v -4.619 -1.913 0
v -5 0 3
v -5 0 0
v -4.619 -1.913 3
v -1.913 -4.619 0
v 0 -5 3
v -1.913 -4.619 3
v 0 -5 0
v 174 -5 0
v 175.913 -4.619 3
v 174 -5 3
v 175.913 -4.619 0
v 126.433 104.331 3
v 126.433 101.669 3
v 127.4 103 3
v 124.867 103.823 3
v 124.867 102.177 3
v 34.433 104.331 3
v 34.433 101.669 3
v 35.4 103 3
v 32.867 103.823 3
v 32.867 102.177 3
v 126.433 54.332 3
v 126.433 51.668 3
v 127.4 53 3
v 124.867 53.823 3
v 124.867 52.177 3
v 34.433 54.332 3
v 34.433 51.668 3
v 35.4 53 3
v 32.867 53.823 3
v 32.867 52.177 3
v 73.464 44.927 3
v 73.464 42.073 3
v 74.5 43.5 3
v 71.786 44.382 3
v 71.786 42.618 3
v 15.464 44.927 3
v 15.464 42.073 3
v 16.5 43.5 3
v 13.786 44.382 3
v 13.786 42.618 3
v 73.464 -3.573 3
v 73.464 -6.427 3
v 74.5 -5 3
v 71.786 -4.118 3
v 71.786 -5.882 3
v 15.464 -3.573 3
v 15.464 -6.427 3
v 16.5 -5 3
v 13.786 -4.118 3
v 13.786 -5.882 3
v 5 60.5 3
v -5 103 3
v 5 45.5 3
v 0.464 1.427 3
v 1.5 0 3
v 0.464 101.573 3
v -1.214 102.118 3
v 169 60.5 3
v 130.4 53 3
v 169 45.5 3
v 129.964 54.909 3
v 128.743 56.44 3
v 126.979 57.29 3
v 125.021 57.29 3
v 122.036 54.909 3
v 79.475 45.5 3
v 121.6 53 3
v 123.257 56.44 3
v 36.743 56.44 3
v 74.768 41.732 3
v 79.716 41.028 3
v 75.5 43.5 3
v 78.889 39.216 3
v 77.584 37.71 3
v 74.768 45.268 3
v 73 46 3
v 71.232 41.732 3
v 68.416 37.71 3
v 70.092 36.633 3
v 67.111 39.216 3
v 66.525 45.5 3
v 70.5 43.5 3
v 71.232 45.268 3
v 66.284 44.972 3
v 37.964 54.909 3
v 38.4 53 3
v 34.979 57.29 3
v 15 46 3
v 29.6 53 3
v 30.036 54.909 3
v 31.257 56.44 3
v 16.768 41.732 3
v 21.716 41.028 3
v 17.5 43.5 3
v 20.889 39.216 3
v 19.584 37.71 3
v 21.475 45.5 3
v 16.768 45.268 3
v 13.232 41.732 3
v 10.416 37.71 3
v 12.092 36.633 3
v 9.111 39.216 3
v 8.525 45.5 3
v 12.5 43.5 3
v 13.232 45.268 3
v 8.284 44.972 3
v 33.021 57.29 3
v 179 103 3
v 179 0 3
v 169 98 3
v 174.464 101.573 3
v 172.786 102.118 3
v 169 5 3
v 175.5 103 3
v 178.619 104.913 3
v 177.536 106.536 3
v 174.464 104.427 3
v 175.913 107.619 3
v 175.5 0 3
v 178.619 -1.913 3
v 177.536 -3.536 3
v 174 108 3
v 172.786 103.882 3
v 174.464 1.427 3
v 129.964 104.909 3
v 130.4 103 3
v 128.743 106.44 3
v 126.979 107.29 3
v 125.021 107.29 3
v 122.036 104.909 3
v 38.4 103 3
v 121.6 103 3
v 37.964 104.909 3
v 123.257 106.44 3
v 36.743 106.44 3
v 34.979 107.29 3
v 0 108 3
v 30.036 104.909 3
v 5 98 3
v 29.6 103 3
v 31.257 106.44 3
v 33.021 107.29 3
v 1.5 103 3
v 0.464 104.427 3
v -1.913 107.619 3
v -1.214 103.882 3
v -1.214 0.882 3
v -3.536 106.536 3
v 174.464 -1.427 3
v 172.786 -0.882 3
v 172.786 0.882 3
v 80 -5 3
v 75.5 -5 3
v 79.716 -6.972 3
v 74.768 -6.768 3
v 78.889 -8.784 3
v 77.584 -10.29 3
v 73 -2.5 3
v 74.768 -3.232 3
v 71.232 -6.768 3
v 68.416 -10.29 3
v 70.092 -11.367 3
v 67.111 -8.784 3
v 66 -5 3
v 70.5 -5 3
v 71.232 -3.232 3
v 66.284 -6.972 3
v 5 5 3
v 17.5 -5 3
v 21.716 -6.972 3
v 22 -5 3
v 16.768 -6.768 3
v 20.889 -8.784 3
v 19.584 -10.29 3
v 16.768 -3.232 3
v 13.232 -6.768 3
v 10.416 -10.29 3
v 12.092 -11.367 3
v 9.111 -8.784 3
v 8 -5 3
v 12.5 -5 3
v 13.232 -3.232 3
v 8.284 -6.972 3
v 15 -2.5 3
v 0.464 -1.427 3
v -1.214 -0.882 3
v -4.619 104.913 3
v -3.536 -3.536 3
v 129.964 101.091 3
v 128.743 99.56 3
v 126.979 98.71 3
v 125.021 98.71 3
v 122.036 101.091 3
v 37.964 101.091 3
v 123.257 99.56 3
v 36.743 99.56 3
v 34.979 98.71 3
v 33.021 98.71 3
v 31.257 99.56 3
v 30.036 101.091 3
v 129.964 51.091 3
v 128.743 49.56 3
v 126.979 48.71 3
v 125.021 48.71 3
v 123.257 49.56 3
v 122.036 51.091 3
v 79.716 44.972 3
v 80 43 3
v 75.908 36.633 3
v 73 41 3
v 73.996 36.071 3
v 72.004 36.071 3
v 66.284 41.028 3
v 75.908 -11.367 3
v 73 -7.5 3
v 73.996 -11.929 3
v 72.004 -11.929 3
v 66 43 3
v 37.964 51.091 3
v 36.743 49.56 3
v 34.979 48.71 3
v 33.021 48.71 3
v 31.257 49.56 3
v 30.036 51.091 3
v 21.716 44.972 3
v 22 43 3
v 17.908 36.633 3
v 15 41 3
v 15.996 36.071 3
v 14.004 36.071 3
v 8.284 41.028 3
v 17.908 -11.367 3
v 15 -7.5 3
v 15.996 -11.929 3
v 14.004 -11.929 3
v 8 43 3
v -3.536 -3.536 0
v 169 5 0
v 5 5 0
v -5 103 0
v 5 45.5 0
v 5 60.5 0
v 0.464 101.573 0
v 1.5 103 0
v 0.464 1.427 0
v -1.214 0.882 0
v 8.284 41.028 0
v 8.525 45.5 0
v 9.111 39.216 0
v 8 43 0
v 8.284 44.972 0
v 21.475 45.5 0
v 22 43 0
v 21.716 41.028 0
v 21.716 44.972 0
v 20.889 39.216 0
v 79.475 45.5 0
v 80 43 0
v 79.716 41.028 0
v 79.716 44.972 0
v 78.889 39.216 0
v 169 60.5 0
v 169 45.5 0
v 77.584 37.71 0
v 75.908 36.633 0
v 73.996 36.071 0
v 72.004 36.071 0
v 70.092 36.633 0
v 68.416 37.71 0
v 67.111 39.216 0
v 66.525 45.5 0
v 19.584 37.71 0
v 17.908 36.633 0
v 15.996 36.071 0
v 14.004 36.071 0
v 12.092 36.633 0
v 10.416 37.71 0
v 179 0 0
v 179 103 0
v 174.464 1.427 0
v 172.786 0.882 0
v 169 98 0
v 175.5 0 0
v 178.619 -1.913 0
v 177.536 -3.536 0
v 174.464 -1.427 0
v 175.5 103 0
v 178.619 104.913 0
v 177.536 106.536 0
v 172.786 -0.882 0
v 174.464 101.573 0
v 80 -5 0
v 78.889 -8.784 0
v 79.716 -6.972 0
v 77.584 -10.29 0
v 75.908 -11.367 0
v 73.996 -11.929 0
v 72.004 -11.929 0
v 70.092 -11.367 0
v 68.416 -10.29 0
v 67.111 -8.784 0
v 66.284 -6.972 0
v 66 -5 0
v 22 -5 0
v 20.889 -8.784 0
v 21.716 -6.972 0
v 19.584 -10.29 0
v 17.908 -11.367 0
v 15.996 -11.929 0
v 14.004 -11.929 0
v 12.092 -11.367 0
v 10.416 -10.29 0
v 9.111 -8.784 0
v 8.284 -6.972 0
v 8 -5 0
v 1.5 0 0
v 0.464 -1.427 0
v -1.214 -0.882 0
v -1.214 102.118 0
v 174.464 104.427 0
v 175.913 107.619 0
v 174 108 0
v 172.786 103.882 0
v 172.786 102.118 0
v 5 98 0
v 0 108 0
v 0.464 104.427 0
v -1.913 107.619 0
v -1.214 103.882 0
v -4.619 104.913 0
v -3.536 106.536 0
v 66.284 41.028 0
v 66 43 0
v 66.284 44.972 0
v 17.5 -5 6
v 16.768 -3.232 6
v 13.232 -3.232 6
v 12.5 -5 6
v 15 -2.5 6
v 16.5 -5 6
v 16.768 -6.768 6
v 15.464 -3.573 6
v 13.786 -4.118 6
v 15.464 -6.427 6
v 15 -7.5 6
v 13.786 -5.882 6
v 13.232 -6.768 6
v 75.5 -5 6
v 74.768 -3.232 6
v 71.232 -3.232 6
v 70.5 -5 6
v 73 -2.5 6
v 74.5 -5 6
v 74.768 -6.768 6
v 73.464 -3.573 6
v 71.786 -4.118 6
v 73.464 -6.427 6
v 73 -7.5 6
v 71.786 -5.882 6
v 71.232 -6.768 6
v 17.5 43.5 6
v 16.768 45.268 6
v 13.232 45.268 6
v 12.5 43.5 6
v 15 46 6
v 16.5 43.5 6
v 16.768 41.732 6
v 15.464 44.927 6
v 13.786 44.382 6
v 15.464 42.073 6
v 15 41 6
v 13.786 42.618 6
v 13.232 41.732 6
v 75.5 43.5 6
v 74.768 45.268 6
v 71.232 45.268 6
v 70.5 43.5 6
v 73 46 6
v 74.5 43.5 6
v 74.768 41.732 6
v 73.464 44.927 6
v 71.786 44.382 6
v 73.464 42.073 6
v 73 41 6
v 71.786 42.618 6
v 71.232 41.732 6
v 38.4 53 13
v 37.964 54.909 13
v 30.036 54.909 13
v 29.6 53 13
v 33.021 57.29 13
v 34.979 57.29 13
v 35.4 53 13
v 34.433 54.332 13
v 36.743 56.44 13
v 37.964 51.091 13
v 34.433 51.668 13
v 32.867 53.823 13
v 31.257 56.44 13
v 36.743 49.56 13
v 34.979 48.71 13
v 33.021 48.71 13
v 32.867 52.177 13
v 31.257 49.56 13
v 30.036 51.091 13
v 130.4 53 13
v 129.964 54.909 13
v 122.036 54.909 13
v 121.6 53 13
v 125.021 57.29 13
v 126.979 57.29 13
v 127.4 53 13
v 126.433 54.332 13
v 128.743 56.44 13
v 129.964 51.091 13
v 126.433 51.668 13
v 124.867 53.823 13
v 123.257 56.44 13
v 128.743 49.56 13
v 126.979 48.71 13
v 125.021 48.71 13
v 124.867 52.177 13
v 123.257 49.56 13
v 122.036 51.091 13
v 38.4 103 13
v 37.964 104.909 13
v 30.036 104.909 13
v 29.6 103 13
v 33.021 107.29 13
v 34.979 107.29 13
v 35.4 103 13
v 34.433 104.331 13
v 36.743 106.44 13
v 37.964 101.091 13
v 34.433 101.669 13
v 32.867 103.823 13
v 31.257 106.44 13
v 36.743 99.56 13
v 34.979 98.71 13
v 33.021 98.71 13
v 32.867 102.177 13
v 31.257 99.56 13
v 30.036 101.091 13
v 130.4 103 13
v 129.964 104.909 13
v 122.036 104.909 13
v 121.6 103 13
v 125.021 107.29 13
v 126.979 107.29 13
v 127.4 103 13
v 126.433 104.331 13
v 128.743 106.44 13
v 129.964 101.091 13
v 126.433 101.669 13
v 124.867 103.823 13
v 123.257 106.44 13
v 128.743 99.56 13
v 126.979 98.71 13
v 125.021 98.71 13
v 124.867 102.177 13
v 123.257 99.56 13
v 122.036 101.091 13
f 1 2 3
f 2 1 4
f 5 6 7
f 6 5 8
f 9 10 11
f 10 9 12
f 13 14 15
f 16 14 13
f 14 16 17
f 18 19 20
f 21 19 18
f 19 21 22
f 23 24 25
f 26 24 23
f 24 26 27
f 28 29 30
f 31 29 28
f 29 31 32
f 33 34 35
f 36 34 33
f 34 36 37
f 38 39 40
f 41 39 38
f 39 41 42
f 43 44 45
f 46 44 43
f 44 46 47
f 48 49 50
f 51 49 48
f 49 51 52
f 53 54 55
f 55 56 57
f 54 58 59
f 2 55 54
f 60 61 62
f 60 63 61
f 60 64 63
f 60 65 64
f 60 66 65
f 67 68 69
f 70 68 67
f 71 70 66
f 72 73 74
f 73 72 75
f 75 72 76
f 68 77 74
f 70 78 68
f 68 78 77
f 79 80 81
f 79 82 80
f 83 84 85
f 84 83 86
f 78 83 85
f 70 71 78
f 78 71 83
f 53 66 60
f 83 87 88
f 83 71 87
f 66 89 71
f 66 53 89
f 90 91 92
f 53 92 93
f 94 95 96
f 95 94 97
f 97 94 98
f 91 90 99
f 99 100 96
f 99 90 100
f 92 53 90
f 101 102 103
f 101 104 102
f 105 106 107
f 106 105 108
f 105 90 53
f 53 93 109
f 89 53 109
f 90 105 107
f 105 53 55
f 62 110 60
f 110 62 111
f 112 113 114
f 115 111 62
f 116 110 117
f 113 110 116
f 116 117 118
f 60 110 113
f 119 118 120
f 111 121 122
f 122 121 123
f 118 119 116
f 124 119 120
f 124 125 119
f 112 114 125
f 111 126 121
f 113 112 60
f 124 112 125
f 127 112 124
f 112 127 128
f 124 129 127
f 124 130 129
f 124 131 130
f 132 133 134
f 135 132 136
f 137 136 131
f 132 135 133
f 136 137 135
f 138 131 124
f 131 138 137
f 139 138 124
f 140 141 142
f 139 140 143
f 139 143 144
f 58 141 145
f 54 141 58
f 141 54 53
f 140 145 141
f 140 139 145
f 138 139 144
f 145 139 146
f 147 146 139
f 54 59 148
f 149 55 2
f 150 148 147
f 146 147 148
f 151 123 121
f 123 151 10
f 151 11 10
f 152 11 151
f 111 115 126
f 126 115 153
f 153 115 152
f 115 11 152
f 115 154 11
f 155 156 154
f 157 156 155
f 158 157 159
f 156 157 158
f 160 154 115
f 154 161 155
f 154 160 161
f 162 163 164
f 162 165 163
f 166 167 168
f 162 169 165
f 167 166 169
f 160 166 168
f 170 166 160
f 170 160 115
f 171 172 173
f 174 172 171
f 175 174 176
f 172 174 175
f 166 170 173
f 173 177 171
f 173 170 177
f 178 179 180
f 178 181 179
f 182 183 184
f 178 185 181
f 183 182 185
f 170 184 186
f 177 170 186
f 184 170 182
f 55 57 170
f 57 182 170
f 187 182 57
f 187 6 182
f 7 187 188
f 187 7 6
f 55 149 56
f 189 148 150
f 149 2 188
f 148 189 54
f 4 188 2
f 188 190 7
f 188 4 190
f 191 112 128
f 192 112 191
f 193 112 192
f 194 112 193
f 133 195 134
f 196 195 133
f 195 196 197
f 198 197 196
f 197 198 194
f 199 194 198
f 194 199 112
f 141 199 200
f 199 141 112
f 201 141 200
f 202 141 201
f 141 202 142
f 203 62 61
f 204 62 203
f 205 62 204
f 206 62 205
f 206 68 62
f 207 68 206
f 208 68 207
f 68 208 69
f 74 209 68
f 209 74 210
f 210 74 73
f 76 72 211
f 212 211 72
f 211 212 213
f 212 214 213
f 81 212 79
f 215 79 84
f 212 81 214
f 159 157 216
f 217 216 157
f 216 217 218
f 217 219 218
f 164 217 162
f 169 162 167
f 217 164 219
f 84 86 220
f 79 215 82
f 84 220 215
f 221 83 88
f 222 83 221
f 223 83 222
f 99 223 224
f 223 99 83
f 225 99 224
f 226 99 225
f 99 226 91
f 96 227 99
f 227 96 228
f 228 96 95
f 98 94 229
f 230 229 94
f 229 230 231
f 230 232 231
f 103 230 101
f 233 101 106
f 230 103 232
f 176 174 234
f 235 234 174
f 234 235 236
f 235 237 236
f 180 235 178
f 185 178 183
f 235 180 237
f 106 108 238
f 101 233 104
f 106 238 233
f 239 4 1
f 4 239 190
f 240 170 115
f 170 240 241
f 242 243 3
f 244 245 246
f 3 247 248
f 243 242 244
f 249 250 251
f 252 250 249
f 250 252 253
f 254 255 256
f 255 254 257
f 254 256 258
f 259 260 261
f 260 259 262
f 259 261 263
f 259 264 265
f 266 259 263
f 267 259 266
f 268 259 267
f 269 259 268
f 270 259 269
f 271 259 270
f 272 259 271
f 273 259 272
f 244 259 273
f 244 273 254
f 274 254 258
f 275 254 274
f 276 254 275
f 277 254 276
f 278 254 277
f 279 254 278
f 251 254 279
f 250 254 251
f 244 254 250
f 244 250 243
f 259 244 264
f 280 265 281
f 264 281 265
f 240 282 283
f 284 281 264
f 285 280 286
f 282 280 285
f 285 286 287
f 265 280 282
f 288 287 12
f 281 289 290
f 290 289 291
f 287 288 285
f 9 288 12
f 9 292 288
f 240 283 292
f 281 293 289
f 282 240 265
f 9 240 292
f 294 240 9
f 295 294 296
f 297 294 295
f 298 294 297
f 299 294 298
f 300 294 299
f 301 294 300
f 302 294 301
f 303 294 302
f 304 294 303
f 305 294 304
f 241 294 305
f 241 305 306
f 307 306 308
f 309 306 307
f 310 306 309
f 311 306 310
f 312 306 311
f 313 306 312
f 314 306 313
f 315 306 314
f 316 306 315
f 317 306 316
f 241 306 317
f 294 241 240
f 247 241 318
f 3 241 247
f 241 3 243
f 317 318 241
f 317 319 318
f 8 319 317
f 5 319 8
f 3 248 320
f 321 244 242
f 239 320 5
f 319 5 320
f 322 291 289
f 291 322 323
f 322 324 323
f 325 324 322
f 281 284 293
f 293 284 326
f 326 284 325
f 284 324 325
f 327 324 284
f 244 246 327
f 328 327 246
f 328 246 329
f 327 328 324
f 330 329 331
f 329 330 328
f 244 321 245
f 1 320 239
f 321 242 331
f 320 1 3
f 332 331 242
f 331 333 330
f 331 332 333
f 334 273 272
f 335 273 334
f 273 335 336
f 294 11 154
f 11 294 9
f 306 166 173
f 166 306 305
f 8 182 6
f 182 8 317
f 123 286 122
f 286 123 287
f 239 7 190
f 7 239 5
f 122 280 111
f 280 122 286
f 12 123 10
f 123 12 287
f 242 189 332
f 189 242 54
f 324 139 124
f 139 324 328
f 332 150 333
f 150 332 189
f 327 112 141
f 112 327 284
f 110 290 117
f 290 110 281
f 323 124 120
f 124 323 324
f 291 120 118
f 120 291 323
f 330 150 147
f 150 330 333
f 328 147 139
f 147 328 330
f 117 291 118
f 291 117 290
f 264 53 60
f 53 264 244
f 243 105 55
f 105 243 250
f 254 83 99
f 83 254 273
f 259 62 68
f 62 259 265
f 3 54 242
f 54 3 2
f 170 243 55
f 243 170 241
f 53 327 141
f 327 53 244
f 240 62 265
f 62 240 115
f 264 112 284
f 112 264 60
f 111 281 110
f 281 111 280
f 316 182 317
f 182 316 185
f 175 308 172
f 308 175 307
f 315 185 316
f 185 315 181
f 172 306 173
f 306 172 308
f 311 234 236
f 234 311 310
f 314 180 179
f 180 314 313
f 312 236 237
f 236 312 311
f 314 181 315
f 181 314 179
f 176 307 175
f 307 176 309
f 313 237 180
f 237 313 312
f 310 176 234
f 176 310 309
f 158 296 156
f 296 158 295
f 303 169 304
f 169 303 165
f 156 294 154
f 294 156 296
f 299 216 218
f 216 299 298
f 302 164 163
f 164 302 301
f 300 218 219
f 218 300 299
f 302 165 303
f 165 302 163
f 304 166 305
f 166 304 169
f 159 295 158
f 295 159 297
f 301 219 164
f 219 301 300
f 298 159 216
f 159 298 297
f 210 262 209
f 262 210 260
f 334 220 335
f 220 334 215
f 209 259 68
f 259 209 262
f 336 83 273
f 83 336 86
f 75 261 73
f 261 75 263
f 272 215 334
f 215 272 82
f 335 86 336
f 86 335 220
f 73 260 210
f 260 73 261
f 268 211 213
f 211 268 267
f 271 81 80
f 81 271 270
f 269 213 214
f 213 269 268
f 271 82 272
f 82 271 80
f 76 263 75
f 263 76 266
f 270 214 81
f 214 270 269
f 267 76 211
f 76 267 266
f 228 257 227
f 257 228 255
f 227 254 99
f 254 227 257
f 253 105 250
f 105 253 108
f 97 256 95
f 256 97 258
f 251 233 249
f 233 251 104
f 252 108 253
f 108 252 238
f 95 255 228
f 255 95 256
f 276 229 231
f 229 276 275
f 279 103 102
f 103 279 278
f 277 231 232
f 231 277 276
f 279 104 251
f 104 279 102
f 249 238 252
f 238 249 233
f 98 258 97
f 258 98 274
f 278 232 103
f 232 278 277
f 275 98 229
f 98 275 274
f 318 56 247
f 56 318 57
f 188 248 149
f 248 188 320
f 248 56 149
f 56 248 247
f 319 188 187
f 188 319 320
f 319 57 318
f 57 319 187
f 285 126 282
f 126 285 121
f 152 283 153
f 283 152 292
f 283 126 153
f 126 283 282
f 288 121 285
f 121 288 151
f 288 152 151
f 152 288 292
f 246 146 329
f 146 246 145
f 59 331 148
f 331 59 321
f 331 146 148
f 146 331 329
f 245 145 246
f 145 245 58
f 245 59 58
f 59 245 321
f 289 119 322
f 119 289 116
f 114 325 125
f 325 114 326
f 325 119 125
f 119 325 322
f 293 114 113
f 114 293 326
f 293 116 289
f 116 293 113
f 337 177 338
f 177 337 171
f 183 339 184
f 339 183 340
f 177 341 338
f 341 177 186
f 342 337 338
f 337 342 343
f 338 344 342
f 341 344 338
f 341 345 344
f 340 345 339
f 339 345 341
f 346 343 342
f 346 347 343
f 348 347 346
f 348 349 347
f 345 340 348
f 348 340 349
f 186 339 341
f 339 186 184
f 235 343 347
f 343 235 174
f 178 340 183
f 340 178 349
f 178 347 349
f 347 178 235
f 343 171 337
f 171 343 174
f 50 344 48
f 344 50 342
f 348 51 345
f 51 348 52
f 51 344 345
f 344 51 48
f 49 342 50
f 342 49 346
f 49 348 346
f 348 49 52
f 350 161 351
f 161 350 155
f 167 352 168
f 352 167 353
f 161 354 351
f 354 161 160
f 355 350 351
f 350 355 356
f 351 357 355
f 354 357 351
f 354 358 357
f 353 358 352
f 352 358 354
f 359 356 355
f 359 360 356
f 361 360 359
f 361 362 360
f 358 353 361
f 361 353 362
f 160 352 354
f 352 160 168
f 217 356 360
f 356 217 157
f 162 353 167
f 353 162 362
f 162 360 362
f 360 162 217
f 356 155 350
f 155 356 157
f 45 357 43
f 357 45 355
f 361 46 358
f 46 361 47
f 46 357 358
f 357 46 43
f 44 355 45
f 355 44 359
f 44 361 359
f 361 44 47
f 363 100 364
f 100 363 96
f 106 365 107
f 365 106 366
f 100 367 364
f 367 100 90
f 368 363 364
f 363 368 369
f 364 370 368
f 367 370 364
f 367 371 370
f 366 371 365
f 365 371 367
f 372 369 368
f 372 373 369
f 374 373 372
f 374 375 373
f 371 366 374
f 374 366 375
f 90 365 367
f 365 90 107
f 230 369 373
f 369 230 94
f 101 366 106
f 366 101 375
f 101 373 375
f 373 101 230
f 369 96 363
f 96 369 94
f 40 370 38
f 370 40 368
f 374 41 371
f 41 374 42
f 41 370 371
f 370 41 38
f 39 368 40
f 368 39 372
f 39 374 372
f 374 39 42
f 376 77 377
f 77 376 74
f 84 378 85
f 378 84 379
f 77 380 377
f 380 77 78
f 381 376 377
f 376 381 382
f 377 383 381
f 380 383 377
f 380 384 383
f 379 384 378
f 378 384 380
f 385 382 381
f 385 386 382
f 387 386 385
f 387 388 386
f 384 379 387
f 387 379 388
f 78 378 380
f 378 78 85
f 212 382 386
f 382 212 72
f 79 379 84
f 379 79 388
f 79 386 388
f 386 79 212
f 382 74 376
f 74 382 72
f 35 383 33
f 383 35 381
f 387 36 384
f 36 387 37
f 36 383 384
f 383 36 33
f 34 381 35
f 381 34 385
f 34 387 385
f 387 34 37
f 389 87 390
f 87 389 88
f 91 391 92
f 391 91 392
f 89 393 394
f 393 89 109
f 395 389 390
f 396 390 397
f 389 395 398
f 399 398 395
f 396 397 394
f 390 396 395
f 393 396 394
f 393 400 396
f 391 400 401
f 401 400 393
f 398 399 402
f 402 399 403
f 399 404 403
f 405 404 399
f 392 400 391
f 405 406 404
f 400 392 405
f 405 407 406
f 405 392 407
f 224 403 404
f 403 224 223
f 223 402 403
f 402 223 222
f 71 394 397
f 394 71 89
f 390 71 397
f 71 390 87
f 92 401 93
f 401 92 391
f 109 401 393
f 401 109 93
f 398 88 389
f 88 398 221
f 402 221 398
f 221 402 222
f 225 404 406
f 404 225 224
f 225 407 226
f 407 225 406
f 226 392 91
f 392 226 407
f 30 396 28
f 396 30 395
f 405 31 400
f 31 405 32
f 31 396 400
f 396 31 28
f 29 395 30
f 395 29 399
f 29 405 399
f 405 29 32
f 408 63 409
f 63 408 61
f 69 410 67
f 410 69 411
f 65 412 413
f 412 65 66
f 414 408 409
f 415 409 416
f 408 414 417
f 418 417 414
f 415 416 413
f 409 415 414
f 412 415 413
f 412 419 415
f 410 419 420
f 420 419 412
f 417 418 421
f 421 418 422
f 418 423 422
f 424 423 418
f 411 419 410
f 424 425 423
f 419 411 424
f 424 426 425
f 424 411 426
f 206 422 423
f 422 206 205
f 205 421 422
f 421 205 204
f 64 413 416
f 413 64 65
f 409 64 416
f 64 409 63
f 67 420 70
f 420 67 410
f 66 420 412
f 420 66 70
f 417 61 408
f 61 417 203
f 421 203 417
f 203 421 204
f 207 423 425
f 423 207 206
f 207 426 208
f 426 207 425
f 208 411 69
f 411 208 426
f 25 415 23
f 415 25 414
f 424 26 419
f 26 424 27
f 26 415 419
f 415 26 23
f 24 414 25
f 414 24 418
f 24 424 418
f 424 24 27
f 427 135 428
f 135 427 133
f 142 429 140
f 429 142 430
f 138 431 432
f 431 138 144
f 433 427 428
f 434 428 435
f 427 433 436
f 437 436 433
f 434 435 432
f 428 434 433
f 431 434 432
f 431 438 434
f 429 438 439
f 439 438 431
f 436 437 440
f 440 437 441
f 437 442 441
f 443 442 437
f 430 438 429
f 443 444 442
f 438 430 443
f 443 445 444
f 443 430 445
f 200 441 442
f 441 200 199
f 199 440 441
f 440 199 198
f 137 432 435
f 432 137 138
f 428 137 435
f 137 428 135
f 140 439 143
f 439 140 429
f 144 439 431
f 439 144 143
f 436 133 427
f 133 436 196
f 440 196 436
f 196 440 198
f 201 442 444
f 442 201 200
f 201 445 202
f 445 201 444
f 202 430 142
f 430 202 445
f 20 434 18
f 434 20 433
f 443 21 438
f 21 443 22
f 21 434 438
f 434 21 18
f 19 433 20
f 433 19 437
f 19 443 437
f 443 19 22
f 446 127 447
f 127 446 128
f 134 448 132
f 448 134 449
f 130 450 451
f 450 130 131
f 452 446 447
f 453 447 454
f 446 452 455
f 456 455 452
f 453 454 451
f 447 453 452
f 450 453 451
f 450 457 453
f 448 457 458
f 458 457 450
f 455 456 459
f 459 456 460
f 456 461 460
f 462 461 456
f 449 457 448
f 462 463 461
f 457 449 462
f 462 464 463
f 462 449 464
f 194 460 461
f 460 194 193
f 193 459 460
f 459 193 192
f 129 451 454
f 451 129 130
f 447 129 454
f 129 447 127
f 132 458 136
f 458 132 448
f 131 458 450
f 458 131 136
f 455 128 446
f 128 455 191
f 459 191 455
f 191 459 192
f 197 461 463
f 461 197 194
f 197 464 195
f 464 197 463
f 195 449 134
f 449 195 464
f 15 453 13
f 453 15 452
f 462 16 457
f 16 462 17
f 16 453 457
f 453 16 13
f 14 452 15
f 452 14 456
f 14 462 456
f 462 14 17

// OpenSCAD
main_support_height = 3;
main_support_width = 10;

module main_structure() {
// upper horizontal side
hull() {
    cylinder(main_support_height, d=main_support_width);
    translate([174, 0, 0]) cylinder(3, d=main_support_width);
}

// lower horizontal side
translate([0, 103, 0]) hull() {
    cylinder(main_support_height, d=main_support_width);
    translate([174, 0, 0]) {
        cylinder(main_support_height, d=main_support_width);
    }
}

// central horizontal line
translate([4.5, 53, 0]) hull() {
    cylinder(main_support_height, d=main_support_width+5);
    translate([165, 0, 0]) cylinder(main_support_height, d=main_support_width+5);
}

// left vertical edge
hull() {
    cylinder(main_support_height, d=main_support_width);
    translate([0, 103, 0]) cylinder(main_support_height, d=main_support_width);
}

// right vertical edge
hull() {
    translate([174, 0, 0]) cylinder(main_support_height, d=main_support_width);
    translate([174, 103, 0]) cylinder(main_support_height, d=main_support_width);
}

// pads for rpi holder
translate([15, -5, 0]) {
    cylinder(main_support_height, d=main_support_width+4);
}
// 58mm between holes horizontally
translate([73, -5, 0]) {
    cylinder(main_support_height, d=main_support_width+4);
}
translate([73, 43, 0]) {
    cylinder(main_support_height, d=main_support_width+4);
}
translate([15, 43, 0]) {
    cylinder(main_support_height, d=main_support_width+4);
}

}

// rpi holder
module rpi_holder_standoff() {
    rpi_standoff_height = 3;
    difference() {
        cylinder(rpi_standoff_height, d=5);
        translate([0,0,-main_support_height]) 
            cylinder(rpi_standoff_height+main_support_height, d=3);
    }
}

module rpi_holder() {
    translate([0, 0, main_support_height]) rpi_holder_standoff();
    translate([58, 0, main_support_height]) rpi_holder_standoff();
    translate([0, 48.5, main_support_height]) rpi_holder_standoff();
    translate([58, 48.5, main_support_height]) rpi_holder_standoff();   
}

// wild thumper controller holder
module wild_thumper_controller_standoff() {
    controller_standoff_height = 10;
    controller_standoff_hole_diam = 2.8;
    controller_standoff_wall_thickness = 3;
    
    difference() {
        cylinder(controller_standoff_height, d=controller_standoff_wall_thickness*2+controller_standoff_hole_diam);
        translate([0, 0, -main_support_height])
            cylinder(controller_standoff_height+main_support_height, d=controller_standoff_hole_diam);
    }
}

module wild_thumper_controller_holder() {
    translate([4, 0, main_support_height]) wild_thumper_controller_standoff();
    translate([96, 0, main_support_height]) wild_thumper_controller_standoff();
    translate([4, 50, main_support_height]) wild_thumper_controller_standoff();
    translate([96, 50, main_support_height]) wild_thumper_controller_standoff();
}

difference() {
    main_structure();
    cylinder(main_support_height, d=3);
    translate([174, 0, 0])
        cylinder(main_support_height, d=3);
    translate([0, 103, 0])
        cylinder(main_support_height, d=3);
    translate([174, 103, 0])
        cylinder(main_support_height, d=3);
}
translate([15, -5, 0]) 
    rpi_holder();
translate([30, 53, 0]) 
    wild_thumper_controller_holder();
